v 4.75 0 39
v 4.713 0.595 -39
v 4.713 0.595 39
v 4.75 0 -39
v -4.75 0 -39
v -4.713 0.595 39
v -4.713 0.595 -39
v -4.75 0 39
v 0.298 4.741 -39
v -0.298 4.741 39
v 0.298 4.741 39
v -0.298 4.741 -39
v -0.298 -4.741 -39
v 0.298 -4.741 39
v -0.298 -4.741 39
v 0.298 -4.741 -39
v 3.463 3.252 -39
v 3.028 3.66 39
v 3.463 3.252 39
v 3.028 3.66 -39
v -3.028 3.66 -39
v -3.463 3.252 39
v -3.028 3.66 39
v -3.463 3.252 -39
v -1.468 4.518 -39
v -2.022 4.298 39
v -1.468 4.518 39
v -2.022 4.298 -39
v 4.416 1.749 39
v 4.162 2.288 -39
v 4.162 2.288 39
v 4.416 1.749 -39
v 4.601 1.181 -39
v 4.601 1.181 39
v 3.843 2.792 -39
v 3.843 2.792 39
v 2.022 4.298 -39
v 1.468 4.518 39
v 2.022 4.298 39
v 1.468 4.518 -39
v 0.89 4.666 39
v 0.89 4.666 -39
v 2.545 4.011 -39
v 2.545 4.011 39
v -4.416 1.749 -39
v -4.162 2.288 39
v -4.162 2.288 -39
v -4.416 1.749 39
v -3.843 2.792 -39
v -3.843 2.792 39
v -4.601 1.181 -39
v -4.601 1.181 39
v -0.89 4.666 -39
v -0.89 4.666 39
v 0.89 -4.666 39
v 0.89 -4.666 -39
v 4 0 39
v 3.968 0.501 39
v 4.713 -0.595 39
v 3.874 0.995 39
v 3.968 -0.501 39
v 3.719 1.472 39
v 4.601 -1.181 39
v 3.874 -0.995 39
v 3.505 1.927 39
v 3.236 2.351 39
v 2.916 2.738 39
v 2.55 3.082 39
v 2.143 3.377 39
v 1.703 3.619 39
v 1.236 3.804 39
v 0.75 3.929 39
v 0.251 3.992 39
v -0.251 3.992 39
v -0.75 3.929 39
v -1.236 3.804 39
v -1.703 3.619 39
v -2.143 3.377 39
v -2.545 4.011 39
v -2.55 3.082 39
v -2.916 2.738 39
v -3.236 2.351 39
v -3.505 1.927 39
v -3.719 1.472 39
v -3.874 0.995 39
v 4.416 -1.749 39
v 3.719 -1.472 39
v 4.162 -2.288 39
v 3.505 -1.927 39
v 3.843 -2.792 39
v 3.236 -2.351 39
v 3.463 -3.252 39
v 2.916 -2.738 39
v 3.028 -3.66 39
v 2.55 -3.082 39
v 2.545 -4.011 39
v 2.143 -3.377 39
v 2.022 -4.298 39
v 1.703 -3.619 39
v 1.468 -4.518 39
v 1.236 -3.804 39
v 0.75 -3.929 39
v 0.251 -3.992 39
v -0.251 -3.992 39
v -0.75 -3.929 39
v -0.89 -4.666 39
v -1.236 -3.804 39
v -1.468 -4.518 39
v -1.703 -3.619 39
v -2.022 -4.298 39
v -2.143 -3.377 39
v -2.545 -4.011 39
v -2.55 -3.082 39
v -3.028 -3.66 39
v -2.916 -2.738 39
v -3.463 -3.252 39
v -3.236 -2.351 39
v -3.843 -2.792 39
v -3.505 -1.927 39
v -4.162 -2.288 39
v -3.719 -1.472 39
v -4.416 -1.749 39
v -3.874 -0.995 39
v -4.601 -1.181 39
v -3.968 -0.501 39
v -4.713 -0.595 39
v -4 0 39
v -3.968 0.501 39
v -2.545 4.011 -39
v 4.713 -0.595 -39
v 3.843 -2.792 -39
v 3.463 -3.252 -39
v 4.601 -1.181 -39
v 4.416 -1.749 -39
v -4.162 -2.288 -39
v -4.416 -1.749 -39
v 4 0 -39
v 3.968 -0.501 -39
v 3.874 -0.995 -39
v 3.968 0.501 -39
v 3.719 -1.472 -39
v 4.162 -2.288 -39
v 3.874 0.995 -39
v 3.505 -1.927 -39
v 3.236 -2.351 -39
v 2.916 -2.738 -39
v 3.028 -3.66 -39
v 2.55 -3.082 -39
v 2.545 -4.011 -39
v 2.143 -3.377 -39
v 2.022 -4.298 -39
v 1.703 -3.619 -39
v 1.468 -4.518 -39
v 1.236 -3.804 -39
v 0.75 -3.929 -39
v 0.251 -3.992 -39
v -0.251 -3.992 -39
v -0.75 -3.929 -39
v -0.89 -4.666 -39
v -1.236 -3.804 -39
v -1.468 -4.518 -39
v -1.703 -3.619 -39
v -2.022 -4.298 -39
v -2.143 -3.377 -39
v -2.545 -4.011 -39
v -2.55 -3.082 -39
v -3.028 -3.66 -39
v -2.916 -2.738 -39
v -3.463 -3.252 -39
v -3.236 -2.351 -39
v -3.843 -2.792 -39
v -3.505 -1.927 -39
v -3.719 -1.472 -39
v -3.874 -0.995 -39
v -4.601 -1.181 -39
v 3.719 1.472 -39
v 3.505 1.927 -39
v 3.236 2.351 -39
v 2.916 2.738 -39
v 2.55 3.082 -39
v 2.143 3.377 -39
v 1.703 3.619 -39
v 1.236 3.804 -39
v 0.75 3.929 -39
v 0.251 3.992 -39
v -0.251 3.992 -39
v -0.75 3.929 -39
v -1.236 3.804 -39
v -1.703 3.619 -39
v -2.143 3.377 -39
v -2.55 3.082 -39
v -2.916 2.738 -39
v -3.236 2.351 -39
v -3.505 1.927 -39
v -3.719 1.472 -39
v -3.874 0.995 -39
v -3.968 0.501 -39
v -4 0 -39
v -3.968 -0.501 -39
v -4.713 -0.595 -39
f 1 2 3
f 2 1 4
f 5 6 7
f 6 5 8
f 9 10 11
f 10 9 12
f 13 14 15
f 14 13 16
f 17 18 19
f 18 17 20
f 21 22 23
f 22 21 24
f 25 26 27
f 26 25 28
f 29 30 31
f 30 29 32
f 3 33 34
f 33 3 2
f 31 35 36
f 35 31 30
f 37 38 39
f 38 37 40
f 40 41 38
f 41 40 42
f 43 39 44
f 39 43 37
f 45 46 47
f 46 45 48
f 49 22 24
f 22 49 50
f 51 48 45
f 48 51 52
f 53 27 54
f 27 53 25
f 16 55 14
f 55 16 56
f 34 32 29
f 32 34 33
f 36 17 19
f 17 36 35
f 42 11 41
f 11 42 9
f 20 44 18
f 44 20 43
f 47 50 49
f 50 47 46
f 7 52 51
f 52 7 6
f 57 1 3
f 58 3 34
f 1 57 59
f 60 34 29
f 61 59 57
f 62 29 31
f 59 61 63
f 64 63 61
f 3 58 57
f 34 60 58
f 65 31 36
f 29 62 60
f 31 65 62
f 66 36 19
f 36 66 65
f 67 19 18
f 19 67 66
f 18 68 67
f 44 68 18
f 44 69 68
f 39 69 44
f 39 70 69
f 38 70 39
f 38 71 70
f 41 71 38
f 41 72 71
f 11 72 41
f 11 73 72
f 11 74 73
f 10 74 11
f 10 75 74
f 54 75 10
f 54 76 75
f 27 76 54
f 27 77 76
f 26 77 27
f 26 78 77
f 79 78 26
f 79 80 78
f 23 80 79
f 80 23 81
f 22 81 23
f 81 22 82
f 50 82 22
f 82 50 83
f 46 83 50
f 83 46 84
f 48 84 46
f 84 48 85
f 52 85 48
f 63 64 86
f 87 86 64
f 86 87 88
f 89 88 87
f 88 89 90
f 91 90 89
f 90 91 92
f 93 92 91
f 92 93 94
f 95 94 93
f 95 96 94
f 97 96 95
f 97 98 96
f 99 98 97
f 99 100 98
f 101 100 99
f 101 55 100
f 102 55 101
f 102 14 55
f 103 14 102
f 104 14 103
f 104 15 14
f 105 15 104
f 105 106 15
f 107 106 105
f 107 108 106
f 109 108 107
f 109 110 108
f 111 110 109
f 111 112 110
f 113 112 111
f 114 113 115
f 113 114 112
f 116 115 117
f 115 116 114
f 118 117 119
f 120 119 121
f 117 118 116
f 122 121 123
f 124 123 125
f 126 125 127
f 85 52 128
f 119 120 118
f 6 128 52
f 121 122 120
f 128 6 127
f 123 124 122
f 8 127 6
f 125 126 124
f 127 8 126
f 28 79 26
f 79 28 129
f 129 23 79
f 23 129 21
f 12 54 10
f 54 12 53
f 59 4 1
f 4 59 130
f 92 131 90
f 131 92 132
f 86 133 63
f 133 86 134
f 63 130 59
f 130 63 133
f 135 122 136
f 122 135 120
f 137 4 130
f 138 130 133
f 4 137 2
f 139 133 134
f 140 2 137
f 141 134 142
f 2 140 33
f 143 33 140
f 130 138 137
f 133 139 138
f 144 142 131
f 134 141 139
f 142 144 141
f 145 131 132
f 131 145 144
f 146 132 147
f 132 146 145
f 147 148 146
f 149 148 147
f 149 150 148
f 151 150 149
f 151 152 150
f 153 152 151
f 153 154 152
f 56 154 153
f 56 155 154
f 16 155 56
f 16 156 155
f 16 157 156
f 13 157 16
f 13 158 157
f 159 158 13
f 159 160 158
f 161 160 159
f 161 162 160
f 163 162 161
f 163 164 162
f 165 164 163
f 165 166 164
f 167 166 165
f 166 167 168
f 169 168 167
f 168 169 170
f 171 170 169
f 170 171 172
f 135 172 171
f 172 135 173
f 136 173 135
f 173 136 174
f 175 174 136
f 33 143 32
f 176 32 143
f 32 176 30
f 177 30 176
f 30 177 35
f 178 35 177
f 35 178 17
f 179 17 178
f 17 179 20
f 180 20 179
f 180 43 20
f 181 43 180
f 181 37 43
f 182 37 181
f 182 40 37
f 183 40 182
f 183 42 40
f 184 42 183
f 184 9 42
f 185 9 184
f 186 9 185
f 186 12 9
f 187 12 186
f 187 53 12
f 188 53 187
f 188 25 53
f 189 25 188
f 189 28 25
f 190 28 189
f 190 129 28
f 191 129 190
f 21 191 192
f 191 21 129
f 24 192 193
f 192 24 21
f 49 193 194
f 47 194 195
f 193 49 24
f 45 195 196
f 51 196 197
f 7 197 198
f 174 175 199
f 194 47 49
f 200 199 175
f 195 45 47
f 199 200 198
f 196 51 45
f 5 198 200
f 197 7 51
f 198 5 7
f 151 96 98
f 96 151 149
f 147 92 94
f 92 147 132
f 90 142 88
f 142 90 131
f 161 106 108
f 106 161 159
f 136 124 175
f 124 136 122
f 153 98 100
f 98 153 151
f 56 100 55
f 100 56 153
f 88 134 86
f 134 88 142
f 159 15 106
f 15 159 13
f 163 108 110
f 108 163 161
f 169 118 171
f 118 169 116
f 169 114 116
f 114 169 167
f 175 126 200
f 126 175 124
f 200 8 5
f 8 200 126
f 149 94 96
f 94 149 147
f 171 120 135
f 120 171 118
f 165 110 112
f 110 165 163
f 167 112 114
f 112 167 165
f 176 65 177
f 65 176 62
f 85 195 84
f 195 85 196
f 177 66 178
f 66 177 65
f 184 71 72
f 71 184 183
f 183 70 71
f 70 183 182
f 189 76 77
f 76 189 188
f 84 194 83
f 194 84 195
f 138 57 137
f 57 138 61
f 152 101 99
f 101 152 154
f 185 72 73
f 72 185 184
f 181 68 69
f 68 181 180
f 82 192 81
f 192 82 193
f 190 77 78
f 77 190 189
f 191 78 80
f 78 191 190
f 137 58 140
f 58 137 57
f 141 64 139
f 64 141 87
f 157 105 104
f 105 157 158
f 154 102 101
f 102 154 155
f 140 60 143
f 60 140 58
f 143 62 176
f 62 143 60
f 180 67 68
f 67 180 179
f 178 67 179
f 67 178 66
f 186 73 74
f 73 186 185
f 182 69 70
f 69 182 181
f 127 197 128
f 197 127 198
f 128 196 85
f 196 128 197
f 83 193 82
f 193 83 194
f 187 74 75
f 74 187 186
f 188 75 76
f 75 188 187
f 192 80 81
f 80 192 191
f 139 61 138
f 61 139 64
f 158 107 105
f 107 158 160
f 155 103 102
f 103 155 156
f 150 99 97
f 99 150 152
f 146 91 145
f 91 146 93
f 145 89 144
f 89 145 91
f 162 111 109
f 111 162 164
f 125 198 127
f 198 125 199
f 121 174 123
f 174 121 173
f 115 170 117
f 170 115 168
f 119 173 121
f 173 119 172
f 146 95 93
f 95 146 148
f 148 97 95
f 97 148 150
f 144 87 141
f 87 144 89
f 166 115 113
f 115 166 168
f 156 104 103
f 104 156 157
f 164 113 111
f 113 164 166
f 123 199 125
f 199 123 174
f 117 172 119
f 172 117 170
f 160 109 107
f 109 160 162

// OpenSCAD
$fn = 50;


difference() {
	union() {
		translate(v = [0, 0, -39.0000000000]) {
			cylinder(h = 78, r = 4.7500000000);
		}
	}
	union() {
		translate(v = [0, 0, -100.0000000000]) {
			cylinder(h = 200, r = 4.0000000000);
		}
	}
}
